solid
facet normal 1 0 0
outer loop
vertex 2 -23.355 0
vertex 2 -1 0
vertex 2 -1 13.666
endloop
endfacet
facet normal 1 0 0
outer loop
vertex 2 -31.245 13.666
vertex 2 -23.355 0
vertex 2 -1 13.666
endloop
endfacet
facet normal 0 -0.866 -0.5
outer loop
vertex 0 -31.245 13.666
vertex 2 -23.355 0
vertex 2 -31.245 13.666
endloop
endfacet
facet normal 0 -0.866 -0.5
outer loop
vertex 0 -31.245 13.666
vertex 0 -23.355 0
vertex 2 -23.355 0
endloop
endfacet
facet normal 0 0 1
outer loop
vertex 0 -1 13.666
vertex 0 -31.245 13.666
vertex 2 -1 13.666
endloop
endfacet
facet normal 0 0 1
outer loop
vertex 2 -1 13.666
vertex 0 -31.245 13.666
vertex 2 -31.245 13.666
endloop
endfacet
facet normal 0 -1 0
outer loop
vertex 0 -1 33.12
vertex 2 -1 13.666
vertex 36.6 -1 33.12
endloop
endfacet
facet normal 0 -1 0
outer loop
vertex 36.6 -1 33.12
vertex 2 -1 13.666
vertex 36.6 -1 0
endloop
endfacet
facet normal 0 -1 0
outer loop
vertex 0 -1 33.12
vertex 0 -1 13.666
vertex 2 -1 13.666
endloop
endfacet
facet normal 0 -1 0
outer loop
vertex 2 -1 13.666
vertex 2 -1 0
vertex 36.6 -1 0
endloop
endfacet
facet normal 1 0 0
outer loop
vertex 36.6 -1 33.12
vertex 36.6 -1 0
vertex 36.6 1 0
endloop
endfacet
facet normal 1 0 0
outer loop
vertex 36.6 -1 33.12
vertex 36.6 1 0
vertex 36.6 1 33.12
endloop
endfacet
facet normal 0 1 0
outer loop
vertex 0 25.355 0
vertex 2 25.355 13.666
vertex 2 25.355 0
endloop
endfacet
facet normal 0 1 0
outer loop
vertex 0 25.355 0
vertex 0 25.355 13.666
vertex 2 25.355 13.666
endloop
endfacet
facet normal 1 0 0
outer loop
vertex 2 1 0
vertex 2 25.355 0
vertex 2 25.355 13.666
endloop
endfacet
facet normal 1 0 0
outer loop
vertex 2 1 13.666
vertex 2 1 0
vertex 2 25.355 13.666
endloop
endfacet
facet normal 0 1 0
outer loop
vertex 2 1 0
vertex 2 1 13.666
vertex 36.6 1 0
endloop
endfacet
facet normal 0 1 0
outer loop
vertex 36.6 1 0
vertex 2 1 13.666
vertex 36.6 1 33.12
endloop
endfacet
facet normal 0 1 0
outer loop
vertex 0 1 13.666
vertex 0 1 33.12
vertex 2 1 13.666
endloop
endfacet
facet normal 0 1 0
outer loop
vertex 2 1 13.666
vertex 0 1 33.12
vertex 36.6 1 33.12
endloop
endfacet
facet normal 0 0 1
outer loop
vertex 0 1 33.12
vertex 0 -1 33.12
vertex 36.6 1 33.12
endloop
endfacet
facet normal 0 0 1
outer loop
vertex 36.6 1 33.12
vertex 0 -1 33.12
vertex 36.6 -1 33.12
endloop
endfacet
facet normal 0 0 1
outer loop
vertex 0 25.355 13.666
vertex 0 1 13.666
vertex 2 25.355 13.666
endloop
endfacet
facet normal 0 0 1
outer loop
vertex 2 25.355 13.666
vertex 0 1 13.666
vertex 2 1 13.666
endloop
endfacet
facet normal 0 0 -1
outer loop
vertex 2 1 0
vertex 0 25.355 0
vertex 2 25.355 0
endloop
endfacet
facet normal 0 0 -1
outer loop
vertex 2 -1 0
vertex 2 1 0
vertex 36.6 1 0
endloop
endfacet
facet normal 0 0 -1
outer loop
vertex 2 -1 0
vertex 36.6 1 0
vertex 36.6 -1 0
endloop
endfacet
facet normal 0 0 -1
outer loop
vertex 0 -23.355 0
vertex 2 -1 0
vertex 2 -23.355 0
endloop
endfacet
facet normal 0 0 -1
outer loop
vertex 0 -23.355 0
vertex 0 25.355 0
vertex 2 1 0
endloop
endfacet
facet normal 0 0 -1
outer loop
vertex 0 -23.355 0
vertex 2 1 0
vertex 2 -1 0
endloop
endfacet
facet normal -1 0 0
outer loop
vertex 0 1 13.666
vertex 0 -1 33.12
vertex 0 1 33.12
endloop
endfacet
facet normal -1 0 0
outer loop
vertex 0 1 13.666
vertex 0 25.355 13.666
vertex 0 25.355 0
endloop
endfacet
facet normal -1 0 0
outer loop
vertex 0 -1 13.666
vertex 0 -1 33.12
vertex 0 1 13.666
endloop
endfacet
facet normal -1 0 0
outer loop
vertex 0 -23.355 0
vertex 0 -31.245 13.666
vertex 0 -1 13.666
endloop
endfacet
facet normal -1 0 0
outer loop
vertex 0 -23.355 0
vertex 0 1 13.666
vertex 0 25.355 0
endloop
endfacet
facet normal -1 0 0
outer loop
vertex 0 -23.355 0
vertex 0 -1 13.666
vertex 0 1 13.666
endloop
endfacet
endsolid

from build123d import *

# Parameters (mm, degrees)
PAD_DEPTH         = 2
SKETCH001_W       = 2
SKETCH001_H       = 33.12
PAD001_DEPTH      = 34.6
PAD001_DEPTH_BACK = 2


with BuildPart() as part:
    # Sketch → Pad (new body)
    with BuildSketch(Plane.YZ):
        Polygon((-23.355, 0), (25.355, 0), (25.355, 13.665881), (-31.245, 13.665881), align=None)
    extrude(amount=PAD_DEPTH)

    # Sketch001 (on Face6 of Pad) → Pad001 (join, two sides)
    with BuildSketch(Plane.YZ.offset(2)) as pad001_sk:
        with Locations((0, 16.56)):
            Rectangle(SKETCH001_W, SKETCH001_H)
    extrude(amount=PAD001_DEPTH)
    extrude(pad001_sk.sketch, amount=-PAD001_DEPTH_BACK)


solid = part.part
